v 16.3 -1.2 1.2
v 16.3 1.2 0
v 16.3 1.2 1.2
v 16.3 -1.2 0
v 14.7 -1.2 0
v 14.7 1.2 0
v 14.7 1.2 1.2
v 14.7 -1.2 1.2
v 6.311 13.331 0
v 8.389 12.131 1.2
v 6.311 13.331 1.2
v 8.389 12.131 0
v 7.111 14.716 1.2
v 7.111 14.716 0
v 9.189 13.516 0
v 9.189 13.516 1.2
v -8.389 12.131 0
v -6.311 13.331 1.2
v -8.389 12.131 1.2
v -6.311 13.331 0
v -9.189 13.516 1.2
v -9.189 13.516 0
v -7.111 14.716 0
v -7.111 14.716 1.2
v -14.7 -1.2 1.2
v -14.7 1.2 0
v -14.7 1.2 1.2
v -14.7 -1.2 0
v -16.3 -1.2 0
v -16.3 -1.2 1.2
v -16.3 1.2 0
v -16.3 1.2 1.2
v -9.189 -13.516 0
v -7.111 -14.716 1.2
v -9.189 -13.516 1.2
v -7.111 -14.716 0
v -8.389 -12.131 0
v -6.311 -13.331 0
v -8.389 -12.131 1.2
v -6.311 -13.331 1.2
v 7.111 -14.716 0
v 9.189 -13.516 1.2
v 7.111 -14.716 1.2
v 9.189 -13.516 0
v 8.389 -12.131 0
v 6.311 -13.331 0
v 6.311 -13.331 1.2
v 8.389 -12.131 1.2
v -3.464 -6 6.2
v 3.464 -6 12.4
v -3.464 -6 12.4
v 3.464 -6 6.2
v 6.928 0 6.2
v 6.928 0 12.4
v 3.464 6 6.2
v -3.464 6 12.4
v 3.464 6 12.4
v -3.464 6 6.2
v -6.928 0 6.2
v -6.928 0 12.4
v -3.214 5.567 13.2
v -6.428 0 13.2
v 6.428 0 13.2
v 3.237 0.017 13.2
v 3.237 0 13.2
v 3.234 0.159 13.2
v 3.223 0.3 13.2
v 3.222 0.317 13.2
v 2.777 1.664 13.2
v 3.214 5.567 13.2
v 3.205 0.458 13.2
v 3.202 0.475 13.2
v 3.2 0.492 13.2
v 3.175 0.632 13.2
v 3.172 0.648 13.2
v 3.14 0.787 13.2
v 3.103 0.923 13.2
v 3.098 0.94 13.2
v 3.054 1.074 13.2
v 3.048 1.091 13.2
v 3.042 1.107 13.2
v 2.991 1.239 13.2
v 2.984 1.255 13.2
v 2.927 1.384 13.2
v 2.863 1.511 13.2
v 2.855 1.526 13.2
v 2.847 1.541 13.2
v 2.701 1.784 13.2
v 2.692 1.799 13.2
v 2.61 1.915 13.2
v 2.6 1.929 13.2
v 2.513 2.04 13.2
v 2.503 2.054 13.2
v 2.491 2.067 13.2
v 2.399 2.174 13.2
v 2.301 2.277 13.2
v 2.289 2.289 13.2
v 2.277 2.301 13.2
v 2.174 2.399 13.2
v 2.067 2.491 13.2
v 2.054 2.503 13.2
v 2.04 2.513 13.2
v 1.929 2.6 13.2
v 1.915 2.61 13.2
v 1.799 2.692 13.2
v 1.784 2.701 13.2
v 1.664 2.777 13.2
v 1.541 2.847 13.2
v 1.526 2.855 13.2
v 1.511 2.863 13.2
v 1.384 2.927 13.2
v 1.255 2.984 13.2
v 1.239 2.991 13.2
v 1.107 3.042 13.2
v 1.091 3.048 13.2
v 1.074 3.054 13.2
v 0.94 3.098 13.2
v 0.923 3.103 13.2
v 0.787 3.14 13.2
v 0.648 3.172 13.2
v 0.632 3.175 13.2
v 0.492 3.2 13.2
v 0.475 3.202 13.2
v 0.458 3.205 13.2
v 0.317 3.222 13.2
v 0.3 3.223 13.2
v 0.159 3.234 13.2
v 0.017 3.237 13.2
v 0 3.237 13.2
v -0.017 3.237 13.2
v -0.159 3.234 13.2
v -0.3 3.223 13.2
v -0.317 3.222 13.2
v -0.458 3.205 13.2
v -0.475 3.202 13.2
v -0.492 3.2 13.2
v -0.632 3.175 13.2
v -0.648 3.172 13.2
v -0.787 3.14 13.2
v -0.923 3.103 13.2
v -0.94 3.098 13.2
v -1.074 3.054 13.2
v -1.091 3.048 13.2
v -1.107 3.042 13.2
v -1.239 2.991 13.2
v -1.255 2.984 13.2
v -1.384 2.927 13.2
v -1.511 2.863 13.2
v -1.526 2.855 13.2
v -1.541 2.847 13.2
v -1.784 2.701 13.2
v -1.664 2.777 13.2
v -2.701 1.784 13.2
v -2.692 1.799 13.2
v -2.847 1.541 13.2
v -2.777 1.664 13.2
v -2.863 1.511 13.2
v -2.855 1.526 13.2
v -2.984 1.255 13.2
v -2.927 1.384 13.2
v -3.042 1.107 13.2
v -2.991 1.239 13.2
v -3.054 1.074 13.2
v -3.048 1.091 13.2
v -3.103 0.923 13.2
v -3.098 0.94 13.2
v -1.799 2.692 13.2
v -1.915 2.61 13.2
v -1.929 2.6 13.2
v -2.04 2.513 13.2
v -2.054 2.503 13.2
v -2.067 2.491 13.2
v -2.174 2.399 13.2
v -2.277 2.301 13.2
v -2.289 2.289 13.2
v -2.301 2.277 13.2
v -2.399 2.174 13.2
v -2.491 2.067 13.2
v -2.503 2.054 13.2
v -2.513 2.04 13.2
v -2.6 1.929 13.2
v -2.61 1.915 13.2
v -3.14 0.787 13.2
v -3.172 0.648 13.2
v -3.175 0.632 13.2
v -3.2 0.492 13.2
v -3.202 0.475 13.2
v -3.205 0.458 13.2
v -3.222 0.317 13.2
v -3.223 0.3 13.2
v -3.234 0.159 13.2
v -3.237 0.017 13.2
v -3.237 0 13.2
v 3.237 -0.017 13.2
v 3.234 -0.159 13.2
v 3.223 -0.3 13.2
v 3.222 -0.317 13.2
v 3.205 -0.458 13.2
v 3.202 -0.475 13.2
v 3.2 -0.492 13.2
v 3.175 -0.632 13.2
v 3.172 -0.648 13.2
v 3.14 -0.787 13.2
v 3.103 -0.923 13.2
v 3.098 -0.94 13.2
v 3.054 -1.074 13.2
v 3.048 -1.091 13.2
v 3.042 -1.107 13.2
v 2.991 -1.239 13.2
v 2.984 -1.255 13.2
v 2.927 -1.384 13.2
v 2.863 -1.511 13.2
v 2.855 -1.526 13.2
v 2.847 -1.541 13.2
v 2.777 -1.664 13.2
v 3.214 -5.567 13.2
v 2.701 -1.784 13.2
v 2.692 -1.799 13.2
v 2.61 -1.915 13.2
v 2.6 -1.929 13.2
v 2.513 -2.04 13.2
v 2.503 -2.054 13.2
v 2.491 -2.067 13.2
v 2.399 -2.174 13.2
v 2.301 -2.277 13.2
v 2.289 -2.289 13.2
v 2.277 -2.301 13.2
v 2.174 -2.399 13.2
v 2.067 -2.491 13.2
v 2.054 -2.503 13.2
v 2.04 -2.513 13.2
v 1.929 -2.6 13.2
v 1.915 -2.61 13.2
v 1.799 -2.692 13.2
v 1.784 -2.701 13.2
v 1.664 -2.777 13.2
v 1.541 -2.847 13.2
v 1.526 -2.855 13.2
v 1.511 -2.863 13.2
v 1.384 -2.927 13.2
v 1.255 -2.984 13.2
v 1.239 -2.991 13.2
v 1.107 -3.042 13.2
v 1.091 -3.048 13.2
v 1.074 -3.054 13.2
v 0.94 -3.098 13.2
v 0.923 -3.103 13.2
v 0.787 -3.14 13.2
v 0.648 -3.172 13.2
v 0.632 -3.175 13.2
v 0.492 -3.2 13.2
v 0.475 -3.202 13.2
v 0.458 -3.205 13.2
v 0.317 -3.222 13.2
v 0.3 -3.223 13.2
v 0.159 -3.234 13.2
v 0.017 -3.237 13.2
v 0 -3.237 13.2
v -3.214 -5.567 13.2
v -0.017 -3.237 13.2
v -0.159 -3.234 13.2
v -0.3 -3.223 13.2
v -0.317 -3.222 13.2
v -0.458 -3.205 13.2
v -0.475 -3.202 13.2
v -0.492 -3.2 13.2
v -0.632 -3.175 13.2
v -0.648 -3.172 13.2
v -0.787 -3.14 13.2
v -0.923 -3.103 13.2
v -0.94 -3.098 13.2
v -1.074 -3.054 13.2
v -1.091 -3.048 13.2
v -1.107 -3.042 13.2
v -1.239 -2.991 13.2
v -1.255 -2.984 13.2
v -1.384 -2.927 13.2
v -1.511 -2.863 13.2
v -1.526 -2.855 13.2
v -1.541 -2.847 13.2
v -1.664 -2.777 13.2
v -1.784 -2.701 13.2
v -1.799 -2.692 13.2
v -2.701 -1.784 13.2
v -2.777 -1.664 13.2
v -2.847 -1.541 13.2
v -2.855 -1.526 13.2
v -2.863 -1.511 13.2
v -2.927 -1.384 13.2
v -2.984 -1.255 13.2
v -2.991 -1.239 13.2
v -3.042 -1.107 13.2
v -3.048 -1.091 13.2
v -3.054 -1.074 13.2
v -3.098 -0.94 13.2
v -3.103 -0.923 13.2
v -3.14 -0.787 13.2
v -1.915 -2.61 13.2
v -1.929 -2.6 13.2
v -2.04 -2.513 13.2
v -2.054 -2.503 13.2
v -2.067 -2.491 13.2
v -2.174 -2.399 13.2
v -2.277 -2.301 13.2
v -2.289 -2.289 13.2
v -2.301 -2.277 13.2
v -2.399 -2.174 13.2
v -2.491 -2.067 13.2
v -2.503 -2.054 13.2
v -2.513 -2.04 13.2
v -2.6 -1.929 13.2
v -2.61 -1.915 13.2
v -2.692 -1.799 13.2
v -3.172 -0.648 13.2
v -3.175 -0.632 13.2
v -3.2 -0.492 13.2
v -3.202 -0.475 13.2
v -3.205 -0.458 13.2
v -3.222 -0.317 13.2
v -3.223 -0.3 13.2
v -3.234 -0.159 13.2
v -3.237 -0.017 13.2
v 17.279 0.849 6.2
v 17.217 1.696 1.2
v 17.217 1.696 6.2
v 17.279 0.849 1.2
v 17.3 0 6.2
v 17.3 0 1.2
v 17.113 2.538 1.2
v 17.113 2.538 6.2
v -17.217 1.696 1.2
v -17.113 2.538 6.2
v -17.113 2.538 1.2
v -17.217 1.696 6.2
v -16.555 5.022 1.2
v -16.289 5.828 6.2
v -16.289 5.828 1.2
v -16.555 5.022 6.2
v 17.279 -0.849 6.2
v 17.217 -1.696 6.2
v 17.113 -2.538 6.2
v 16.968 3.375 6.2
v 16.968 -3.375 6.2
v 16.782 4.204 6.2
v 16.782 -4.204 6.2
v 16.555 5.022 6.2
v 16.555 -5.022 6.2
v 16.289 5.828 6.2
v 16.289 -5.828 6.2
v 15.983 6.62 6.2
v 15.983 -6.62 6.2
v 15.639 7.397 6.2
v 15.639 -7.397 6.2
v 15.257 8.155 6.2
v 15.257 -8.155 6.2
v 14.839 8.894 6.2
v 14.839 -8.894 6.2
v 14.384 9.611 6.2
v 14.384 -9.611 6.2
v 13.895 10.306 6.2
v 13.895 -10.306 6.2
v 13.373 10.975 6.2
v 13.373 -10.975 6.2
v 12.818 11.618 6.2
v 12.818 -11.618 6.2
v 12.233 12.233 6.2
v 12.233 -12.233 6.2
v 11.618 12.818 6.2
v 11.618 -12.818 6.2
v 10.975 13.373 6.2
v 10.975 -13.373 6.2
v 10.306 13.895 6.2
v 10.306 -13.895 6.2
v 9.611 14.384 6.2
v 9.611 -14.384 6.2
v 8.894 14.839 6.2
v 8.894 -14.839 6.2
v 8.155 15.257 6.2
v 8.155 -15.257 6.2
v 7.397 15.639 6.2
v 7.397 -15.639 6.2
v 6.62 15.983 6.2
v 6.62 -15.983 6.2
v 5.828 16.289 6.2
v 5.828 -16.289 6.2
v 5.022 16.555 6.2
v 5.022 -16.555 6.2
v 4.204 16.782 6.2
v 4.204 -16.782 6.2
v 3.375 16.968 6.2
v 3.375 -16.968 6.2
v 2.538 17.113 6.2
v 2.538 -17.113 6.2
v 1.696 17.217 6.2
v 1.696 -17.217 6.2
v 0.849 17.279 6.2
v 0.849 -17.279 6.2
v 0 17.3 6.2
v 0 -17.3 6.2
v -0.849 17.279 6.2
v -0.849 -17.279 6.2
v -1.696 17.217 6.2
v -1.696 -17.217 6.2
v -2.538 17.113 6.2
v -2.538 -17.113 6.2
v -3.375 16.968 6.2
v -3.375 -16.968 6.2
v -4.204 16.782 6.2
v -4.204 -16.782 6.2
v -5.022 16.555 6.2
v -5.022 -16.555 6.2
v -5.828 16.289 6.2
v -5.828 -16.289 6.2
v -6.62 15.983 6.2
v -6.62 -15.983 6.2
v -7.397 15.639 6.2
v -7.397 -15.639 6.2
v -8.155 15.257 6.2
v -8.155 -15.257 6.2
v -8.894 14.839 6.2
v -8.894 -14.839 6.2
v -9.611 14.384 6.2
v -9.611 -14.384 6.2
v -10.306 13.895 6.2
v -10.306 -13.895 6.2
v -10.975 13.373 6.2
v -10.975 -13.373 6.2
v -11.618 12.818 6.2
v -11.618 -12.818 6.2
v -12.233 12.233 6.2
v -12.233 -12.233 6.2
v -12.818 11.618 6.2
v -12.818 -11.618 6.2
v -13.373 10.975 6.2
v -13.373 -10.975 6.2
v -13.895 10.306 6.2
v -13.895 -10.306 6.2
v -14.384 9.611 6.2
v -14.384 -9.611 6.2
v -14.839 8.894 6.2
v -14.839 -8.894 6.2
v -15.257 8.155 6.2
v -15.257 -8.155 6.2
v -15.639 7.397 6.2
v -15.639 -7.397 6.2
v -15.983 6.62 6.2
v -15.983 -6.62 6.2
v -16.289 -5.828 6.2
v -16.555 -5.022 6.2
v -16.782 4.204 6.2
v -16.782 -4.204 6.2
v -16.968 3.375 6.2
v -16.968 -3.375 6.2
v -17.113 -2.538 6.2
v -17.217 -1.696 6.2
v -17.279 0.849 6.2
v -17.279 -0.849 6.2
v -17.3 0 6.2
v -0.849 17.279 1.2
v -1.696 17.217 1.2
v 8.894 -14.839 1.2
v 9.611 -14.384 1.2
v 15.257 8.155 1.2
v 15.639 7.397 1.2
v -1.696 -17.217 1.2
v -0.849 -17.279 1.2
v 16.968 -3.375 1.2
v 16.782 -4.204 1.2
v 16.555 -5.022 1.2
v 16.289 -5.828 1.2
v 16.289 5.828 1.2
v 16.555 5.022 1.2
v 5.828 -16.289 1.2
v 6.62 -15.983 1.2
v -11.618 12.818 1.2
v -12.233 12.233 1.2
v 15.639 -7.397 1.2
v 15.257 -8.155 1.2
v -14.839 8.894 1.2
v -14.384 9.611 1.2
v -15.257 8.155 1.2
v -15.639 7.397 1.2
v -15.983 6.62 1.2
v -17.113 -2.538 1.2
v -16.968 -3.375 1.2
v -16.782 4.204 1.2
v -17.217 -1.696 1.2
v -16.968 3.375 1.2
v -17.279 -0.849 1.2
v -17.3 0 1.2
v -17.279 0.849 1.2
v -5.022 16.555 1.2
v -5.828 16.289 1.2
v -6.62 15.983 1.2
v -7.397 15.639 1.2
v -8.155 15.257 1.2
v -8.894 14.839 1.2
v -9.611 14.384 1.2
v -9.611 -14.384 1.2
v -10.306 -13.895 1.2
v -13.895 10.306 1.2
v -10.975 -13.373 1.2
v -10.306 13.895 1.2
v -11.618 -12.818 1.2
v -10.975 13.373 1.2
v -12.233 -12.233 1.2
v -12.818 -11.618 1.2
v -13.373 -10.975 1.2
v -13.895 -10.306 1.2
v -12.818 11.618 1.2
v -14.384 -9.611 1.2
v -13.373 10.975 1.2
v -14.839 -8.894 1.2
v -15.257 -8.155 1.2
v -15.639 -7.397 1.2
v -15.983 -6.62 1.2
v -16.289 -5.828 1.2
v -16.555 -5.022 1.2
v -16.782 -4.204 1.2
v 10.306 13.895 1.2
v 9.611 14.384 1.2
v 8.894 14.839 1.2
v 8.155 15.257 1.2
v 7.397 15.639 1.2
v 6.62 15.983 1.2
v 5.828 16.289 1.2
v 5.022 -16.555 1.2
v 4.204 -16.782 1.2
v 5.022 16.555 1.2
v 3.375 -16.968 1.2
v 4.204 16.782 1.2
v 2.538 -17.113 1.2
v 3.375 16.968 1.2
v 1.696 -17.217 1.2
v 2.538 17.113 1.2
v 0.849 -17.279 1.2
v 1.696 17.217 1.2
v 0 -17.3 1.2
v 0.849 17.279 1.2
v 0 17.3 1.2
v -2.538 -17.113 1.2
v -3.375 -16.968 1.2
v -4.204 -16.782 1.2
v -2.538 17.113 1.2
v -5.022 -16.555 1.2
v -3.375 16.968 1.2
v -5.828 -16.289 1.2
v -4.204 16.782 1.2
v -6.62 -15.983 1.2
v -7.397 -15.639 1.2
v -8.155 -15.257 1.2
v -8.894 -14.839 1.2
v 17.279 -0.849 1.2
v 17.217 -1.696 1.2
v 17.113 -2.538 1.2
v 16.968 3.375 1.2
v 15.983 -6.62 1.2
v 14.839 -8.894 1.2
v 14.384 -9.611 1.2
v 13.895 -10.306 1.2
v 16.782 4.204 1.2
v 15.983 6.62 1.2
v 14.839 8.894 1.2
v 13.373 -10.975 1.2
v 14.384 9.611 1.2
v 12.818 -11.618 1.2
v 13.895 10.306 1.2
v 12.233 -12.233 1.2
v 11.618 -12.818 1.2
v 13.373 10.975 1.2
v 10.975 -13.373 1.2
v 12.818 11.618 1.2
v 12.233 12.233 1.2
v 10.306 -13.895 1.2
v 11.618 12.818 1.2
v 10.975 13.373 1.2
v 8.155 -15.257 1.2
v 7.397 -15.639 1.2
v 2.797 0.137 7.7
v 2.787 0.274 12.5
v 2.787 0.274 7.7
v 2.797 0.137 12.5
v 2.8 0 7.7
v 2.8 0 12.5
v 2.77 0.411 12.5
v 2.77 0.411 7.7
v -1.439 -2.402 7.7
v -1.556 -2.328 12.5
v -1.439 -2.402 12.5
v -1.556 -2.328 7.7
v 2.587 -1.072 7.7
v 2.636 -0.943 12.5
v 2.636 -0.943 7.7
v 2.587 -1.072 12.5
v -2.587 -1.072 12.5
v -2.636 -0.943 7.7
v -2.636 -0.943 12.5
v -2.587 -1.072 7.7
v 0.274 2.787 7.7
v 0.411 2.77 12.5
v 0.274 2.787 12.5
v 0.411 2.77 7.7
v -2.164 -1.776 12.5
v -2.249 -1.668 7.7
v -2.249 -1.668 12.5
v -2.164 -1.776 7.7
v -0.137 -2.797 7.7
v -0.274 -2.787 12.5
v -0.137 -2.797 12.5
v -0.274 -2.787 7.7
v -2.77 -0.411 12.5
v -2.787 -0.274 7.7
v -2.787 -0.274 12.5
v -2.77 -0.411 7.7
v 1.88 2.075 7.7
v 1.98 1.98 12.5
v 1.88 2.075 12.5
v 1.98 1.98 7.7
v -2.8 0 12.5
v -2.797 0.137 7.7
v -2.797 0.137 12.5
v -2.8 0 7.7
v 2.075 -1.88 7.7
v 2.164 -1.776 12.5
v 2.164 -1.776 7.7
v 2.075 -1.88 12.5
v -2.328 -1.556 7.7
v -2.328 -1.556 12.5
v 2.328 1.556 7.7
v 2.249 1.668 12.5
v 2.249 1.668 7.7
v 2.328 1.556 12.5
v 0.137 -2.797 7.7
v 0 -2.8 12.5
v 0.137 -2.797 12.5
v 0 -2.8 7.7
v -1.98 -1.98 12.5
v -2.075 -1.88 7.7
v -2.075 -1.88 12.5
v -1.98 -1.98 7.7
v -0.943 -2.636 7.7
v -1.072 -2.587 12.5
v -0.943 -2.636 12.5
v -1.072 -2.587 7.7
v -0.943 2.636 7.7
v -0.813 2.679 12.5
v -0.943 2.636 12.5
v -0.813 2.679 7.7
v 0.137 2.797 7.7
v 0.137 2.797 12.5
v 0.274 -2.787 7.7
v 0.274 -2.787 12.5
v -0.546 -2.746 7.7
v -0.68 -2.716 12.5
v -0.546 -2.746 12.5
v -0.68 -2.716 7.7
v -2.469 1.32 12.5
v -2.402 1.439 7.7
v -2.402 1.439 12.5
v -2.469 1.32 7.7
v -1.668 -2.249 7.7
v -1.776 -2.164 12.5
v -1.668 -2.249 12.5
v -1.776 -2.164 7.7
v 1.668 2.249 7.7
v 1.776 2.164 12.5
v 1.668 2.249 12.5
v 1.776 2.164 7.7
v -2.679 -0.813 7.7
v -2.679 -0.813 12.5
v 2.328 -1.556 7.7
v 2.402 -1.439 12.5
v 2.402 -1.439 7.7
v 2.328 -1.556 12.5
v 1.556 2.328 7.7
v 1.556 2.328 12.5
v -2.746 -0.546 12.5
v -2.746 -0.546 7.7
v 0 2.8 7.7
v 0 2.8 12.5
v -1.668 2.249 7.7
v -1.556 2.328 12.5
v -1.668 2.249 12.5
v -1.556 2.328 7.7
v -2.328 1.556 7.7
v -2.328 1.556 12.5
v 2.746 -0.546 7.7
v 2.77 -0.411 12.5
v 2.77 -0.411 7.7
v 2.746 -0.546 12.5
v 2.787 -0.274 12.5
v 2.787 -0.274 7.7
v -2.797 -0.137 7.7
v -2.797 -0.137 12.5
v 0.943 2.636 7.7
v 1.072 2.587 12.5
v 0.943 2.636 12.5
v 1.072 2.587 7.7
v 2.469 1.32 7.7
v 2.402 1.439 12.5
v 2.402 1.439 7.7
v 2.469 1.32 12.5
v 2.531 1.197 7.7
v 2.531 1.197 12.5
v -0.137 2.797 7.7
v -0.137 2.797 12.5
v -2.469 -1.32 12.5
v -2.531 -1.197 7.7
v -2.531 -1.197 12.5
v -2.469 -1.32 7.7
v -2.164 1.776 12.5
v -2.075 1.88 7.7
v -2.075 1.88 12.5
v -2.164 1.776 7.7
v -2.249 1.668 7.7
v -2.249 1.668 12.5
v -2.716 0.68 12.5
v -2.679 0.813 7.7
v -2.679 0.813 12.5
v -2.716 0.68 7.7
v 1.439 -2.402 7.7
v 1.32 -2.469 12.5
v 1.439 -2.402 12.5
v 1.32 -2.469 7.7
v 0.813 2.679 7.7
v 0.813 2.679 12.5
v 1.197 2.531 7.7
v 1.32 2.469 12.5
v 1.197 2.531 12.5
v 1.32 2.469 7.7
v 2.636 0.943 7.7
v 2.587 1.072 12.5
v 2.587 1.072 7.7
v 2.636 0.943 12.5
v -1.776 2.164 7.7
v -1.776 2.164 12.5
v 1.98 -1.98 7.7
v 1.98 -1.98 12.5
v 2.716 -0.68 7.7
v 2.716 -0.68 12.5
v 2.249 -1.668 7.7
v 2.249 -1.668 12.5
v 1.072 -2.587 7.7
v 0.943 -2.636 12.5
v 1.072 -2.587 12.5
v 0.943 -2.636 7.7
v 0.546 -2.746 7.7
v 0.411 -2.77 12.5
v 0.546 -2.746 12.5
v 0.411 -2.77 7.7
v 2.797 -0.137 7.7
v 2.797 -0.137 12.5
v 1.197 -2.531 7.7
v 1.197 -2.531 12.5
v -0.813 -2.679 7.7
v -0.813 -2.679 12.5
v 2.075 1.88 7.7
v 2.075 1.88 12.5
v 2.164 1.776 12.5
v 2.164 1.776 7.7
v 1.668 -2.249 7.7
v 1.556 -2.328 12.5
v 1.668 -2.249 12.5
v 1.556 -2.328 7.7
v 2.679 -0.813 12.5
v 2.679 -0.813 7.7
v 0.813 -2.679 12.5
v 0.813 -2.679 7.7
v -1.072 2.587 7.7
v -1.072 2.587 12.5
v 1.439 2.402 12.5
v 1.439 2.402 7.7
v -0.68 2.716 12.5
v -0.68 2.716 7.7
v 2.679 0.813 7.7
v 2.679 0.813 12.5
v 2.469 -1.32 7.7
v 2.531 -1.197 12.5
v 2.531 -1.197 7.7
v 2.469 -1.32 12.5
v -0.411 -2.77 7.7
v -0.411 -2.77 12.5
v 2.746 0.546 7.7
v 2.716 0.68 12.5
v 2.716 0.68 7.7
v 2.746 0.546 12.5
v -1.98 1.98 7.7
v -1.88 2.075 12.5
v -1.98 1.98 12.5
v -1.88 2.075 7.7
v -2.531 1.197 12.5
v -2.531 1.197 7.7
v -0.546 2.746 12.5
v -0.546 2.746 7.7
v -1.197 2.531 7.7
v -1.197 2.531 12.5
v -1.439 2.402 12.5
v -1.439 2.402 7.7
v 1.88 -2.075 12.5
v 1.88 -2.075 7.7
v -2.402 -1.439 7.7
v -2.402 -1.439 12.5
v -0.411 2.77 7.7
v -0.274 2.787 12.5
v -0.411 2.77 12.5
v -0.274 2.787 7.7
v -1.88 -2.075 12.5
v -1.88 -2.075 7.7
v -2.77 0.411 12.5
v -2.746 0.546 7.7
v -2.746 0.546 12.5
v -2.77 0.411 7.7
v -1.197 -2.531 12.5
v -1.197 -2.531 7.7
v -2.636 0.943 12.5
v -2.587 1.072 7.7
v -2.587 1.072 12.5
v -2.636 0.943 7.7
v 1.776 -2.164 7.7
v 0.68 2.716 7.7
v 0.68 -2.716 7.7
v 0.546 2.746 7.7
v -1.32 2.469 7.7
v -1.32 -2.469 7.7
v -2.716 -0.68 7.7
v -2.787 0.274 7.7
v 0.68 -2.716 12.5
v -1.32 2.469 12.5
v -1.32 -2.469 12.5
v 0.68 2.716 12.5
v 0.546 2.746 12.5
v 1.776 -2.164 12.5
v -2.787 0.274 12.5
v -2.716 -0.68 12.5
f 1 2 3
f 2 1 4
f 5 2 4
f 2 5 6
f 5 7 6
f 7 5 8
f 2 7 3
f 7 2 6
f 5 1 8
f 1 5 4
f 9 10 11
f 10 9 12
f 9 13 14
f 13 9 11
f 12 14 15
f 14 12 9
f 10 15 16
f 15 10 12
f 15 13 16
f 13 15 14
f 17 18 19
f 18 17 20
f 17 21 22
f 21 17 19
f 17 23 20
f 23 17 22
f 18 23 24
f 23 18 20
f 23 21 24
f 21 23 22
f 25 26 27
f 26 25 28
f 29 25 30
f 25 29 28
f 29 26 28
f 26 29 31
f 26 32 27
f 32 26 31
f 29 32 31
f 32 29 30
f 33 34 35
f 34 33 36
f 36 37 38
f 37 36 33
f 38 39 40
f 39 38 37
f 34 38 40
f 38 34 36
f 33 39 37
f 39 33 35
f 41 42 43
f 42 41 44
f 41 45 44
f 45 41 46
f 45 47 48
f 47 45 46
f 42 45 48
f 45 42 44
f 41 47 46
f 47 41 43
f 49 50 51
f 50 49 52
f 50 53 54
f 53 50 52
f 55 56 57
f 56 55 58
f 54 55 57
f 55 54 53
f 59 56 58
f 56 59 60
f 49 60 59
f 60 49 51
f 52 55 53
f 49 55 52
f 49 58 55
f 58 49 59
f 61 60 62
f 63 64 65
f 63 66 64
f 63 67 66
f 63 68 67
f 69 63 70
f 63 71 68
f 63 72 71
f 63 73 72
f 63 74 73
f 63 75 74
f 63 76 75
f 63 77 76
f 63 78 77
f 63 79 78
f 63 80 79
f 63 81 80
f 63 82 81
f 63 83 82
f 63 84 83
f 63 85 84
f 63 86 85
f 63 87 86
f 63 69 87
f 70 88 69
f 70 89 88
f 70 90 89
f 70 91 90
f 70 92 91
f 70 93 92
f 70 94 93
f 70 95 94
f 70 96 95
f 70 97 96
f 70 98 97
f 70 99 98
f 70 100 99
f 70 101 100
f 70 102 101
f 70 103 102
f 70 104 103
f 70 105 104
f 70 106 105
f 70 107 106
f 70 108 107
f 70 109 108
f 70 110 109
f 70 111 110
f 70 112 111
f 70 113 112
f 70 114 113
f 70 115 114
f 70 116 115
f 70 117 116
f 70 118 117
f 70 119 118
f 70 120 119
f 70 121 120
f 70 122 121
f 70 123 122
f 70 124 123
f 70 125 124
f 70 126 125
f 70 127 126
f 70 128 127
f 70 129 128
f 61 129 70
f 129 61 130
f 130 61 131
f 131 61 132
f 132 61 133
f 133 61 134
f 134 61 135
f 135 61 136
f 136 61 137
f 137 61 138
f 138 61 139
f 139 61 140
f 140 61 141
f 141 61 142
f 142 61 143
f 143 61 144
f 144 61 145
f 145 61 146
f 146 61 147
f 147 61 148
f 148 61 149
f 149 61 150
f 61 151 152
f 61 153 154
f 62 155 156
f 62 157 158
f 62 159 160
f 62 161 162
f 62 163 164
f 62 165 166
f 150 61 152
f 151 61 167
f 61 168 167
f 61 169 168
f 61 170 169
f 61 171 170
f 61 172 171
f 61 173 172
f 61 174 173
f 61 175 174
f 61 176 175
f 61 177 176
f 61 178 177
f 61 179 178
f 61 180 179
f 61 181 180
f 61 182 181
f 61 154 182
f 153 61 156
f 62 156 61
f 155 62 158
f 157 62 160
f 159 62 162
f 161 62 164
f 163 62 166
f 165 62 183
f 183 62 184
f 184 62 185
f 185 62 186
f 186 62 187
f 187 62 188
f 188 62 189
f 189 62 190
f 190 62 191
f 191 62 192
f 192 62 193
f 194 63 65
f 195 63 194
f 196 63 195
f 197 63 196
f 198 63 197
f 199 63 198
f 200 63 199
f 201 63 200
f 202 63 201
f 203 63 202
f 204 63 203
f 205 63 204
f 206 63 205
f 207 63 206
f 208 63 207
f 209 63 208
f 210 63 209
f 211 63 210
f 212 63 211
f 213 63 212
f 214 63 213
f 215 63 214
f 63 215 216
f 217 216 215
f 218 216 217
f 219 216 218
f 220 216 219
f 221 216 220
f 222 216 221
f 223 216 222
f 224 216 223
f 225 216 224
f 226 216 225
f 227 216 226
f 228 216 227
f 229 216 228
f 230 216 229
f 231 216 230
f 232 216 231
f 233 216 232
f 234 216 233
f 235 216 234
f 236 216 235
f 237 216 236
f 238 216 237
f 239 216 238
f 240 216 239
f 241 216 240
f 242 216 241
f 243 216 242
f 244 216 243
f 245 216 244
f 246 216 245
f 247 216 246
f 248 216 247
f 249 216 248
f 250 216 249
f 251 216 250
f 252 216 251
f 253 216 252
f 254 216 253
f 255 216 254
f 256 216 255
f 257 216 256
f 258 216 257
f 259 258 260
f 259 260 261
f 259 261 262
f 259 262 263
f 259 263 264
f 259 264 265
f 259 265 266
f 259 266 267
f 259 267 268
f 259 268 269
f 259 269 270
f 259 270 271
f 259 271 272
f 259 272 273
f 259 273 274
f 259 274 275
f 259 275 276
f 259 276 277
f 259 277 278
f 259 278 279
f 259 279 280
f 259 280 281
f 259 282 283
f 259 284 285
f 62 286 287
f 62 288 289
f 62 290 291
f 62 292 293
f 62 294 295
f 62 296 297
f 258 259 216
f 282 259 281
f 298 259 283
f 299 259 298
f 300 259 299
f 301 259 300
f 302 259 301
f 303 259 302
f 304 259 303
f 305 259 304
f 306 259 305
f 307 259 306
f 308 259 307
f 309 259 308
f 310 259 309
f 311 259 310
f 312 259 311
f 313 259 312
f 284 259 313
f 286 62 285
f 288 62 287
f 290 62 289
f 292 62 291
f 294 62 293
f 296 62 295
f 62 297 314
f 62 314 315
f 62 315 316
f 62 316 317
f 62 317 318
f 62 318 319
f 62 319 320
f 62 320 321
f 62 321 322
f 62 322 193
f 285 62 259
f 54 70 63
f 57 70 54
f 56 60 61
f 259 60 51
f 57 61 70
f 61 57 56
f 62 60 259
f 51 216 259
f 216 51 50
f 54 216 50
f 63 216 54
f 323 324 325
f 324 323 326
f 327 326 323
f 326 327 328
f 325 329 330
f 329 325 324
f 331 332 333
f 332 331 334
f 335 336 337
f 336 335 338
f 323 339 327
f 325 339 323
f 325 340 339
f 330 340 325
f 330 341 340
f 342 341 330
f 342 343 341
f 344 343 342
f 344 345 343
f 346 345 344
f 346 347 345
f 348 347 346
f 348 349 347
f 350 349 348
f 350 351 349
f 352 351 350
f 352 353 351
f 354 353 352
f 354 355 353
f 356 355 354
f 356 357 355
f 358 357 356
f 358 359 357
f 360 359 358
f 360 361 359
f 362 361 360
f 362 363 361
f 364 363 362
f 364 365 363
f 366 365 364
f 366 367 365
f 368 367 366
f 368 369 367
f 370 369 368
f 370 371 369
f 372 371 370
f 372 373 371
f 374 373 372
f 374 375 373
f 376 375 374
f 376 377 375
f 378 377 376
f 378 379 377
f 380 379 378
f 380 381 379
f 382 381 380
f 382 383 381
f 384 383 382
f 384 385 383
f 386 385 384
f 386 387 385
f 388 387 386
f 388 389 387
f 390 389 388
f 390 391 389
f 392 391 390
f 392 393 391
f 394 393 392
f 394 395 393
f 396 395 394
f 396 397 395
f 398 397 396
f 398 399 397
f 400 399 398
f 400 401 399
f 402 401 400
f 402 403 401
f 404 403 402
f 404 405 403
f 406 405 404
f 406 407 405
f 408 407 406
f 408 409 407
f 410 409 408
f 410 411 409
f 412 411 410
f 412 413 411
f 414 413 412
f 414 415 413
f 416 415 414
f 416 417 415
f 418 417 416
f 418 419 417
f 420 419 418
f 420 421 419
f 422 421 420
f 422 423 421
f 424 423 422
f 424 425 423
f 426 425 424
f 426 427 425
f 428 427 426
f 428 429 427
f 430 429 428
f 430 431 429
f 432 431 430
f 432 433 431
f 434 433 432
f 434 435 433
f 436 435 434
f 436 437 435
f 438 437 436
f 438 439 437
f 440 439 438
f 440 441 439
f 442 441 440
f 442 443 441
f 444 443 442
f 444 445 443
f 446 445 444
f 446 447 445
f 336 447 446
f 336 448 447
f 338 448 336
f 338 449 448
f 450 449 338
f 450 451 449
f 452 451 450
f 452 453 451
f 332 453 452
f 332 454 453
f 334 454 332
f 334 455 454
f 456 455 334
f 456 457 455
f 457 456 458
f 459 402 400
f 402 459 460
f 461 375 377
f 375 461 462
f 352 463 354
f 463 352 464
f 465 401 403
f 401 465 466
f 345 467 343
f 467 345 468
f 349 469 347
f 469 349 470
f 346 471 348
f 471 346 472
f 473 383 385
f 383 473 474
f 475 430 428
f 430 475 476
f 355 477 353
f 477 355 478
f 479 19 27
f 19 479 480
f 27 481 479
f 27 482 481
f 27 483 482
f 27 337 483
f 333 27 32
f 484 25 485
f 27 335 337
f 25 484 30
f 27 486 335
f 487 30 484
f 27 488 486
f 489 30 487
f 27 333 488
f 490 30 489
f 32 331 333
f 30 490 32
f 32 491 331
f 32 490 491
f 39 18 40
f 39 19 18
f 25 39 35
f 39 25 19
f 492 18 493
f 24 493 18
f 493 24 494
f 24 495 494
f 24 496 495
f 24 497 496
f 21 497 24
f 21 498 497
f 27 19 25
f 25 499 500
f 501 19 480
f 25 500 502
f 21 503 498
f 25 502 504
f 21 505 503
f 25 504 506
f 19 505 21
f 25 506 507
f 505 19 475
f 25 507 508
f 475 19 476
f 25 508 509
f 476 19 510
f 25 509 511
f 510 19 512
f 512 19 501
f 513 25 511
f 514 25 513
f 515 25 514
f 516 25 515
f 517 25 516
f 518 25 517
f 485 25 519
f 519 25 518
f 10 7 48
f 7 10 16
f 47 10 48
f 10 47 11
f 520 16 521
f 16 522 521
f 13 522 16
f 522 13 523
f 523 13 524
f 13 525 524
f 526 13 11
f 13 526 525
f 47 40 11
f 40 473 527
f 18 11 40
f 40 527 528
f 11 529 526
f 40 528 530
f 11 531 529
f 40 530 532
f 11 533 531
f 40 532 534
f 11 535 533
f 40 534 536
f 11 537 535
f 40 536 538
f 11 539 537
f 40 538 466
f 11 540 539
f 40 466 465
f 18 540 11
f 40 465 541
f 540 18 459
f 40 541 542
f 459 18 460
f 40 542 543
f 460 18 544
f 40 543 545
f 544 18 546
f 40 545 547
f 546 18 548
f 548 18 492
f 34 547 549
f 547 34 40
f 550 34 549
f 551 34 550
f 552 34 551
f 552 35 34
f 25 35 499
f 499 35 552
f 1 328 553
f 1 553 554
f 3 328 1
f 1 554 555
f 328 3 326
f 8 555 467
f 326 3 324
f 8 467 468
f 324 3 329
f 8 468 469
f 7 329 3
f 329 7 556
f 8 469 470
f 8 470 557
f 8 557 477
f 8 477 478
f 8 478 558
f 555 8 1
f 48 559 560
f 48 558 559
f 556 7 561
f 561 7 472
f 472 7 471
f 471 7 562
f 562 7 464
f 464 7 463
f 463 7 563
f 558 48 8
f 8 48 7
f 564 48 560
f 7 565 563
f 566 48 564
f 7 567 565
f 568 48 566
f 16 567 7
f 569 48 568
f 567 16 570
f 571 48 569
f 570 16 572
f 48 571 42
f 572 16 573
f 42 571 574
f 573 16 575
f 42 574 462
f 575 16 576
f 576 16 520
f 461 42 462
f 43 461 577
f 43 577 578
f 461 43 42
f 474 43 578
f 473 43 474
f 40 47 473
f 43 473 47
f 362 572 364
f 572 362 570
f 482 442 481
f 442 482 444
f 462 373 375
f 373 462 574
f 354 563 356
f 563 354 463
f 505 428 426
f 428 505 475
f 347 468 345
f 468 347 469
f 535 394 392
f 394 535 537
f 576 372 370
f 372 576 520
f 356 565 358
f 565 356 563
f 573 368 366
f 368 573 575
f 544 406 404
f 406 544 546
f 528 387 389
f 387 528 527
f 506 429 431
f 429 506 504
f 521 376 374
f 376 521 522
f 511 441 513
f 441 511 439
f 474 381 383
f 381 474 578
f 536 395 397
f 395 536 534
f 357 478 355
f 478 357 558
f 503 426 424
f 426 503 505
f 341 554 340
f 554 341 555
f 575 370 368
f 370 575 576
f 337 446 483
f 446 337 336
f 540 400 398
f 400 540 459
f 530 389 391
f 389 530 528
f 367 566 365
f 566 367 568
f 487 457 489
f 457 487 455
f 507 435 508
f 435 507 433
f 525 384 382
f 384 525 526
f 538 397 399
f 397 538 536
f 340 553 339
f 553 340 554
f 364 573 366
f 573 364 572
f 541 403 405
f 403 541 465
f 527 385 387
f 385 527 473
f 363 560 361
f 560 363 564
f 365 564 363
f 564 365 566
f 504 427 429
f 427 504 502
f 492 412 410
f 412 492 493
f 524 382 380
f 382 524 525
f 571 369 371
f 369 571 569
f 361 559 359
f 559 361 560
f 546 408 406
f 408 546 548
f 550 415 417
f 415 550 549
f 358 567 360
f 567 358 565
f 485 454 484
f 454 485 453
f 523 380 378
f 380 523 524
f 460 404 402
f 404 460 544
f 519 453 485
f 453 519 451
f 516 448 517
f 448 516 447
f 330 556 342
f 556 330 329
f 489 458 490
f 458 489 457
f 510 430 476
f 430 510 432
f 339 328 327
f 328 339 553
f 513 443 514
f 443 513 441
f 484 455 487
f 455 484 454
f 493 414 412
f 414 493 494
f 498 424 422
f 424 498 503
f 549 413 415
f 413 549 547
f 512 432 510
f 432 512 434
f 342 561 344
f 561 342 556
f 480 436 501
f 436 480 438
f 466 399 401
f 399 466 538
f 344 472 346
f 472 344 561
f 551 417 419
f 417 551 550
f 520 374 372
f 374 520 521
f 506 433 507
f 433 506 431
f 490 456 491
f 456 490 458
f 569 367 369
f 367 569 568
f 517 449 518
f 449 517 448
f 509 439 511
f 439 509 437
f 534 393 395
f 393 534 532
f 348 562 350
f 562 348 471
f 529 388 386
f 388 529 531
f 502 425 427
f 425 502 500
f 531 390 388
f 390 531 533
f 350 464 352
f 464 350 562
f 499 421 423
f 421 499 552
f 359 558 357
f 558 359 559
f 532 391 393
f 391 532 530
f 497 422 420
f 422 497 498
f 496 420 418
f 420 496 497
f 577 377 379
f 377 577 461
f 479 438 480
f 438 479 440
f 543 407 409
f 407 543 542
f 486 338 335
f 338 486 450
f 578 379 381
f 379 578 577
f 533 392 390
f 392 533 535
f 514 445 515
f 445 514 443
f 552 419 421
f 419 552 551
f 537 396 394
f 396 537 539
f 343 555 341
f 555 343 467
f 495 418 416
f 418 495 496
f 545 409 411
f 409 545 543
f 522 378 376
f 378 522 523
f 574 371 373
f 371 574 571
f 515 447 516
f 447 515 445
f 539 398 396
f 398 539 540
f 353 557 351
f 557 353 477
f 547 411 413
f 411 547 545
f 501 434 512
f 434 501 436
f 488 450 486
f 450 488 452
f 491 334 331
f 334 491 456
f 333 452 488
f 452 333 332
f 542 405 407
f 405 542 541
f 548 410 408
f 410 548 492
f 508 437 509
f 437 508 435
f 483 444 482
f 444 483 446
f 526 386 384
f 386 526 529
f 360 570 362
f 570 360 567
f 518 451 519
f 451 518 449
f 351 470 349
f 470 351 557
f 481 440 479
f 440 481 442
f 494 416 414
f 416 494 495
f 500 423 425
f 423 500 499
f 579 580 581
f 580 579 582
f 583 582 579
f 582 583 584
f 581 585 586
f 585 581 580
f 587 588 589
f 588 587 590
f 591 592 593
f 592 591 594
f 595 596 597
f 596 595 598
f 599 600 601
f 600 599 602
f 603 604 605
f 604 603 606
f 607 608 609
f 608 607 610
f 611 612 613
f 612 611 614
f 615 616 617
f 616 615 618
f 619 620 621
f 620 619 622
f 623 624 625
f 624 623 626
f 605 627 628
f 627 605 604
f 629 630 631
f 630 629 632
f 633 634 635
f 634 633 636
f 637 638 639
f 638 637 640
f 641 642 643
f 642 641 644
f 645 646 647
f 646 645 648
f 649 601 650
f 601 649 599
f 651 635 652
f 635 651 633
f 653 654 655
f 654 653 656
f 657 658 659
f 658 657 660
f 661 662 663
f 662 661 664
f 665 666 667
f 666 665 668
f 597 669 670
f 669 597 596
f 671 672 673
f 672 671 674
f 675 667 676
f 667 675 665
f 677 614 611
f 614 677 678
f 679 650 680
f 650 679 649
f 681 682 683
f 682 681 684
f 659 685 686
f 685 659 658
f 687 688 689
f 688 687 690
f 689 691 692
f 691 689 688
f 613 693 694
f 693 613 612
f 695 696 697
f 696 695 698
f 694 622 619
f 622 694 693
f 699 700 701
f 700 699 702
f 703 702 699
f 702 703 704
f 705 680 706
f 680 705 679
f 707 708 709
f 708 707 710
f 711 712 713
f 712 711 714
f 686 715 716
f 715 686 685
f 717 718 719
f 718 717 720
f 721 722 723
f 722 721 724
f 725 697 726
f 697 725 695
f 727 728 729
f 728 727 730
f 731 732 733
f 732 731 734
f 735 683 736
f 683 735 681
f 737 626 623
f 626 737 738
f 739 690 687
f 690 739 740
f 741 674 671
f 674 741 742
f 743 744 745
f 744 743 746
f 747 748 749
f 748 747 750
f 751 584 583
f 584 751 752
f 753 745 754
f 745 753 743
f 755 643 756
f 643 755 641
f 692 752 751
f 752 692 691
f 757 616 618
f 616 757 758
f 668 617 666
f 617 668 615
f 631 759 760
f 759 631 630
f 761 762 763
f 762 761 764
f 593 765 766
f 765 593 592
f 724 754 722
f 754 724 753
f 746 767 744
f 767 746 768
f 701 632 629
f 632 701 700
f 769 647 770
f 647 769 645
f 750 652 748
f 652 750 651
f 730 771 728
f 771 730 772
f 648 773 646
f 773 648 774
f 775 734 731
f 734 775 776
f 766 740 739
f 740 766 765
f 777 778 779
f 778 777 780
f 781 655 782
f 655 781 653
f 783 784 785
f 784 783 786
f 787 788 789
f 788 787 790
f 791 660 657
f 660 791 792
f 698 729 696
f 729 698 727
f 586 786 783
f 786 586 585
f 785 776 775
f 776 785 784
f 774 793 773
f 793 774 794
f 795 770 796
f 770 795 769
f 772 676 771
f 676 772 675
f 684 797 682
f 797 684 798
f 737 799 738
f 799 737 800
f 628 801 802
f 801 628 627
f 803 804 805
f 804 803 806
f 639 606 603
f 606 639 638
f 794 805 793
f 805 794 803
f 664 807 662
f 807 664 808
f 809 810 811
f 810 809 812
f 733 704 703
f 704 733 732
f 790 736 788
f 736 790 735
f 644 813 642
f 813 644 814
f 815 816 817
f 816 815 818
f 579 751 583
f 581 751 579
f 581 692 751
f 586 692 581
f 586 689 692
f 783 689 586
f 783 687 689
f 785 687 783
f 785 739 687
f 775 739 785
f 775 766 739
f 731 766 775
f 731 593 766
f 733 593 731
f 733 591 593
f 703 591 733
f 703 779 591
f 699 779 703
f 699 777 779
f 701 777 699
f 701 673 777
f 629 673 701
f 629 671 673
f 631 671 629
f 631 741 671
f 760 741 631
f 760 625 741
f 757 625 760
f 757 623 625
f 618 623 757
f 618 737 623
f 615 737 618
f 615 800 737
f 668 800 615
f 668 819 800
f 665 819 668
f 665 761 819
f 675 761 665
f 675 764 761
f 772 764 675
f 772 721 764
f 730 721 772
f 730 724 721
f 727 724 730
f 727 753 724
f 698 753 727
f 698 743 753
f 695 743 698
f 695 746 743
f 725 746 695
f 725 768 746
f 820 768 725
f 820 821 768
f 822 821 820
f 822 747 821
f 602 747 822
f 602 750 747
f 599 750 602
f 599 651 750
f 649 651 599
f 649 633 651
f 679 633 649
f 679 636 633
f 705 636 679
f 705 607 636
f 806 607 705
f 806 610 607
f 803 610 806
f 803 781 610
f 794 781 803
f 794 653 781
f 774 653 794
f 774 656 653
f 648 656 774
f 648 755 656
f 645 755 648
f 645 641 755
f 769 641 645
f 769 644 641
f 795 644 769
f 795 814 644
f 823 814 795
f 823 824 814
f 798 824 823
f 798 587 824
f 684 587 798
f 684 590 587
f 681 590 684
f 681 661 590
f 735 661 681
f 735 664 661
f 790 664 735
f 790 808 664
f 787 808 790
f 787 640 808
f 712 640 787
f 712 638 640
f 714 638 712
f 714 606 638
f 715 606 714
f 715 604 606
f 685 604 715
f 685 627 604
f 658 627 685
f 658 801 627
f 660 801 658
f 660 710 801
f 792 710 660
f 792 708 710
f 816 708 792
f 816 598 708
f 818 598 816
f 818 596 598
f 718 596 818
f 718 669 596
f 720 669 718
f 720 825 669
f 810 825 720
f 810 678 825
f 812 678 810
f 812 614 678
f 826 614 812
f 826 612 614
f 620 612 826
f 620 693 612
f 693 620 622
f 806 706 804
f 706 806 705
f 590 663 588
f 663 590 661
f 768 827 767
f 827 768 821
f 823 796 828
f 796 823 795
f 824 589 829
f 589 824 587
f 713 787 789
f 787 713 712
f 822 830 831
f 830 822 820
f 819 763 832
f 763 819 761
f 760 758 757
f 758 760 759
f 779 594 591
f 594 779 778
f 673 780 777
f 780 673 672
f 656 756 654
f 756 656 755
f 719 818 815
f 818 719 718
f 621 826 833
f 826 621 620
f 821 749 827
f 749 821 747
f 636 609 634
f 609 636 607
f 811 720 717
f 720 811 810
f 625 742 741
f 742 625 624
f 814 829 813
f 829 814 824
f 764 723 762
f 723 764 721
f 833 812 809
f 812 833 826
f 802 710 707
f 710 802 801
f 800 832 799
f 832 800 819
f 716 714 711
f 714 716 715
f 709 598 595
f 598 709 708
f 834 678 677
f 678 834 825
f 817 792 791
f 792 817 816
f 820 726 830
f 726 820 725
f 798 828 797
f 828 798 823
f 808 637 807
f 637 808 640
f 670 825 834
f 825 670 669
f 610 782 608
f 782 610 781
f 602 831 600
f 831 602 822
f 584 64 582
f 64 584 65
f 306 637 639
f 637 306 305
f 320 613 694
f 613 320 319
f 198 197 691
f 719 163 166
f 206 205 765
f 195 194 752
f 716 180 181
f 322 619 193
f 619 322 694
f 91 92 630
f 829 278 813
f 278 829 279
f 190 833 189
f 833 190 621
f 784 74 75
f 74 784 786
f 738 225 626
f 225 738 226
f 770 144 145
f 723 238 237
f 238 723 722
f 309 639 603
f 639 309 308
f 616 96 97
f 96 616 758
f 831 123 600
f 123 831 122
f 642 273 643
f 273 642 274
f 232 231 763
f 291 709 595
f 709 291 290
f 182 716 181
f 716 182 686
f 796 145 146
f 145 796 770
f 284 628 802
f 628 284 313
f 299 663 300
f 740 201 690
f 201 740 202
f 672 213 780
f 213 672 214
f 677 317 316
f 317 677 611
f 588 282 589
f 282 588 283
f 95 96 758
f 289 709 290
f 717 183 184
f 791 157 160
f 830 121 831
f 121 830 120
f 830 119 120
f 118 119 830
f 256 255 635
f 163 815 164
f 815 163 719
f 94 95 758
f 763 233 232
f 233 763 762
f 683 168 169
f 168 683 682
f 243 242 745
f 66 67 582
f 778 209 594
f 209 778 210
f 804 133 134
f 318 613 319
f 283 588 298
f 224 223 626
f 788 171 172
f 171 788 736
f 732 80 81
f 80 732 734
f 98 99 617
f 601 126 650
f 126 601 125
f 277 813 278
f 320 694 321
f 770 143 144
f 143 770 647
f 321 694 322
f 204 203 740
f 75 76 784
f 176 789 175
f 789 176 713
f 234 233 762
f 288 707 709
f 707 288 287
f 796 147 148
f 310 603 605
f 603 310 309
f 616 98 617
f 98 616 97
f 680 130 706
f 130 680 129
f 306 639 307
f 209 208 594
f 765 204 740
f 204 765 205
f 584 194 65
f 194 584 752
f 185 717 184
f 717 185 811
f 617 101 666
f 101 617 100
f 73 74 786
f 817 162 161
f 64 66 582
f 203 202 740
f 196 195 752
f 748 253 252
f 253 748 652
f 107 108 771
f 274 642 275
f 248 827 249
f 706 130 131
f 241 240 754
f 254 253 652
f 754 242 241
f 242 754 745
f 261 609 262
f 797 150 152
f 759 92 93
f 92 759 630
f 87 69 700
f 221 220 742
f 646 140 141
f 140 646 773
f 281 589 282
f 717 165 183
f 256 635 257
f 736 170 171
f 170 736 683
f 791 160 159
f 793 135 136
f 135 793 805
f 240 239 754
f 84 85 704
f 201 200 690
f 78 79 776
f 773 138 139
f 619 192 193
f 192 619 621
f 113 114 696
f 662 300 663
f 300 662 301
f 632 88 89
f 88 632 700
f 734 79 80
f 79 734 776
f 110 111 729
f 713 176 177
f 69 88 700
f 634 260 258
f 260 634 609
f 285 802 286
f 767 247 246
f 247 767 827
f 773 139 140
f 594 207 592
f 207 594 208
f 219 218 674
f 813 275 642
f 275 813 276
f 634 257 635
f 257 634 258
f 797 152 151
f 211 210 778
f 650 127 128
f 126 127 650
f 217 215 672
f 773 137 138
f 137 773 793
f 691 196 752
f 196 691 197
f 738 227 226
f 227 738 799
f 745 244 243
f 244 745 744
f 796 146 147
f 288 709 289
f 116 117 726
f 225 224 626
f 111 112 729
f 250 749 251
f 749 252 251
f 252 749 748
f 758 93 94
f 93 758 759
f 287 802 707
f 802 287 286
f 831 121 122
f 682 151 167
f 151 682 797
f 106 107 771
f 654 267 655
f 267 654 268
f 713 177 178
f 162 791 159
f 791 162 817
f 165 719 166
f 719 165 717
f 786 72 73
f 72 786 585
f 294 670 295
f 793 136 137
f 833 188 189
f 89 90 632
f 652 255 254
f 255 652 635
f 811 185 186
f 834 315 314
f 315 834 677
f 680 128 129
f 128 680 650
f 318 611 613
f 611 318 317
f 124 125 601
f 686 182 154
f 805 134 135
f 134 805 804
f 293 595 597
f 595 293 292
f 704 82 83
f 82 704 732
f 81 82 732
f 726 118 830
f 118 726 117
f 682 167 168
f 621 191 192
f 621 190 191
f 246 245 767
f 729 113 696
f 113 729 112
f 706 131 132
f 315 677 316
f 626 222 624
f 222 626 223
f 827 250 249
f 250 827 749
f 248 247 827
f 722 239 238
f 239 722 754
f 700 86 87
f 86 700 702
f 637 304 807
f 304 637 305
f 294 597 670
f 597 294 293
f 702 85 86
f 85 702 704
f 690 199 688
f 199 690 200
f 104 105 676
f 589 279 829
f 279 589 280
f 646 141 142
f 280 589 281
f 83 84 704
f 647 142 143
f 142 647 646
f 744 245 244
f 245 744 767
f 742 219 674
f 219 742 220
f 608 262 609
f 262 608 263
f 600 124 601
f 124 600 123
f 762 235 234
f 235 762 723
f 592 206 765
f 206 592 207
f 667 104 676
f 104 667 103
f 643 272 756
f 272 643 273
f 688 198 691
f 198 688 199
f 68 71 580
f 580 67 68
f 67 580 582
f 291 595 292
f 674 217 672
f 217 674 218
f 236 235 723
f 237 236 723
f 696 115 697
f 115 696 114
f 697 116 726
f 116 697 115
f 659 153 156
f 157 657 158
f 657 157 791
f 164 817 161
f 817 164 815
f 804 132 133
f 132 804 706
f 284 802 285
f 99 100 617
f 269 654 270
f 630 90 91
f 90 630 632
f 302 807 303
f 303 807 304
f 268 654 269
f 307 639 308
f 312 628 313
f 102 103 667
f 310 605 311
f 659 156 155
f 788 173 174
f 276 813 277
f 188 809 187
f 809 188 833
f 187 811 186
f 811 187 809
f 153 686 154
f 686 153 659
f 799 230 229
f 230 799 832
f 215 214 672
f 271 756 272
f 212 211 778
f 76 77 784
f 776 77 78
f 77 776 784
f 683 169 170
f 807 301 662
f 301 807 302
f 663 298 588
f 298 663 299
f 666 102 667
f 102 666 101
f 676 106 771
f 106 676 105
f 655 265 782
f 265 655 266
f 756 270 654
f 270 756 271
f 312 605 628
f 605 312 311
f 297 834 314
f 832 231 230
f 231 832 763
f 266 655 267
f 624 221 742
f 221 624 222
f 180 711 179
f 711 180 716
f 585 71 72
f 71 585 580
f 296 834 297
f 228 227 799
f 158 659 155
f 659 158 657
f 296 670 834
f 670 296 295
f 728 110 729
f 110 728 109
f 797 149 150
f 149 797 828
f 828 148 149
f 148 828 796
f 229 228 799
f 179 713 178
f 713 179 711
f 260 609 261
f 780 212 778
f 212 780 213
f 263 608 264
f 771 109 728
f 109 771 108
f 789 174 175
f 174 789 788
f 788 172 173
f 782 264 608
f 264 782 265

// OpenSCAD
// Generated by watch-caseback-tool. Units: millimetres.
// notch_circle_diameter is the pitch circle through the tooth centres.
$fn = 128;

module caseback_disk() {
    difference() {
        union() {
            // Male teeth: length is radial, width tangential, depth axial.
            for (a = [0 : 360/6 : 360-360/6]) {
                rotate([0, 0, a])
                    translate([15.5, 0, 0.64])
                        cube([1.6, 2.4, 1.28], center=true);
            }

            // Main disk body.
            translate([0, 0, 1.2])
                cylinder(d=34.6, h=5);

            // Standard 12 mm AF male hex drive, with a lead-in chamfer.
            translate([0, 0, 6.2]) {
                cylinder(r=6.928203, h=6.2, $fn=6);
                translate([0, 0, 6.2])
                    cylinder(r1=6.928203, r2=6.428203, h=0.8, $fn=6);
            }
        }

        // Pocket for an M4 heat-set insert; install from the top of the hex.
        translate([0, 0, 7.7])
            cylinder(d=5.6, h=5.7);
        translate([0, 0, 12.5])
            cylinder(d1=5.6, d2=6.6, h=0.8);
    }
}

caseback_disk();
